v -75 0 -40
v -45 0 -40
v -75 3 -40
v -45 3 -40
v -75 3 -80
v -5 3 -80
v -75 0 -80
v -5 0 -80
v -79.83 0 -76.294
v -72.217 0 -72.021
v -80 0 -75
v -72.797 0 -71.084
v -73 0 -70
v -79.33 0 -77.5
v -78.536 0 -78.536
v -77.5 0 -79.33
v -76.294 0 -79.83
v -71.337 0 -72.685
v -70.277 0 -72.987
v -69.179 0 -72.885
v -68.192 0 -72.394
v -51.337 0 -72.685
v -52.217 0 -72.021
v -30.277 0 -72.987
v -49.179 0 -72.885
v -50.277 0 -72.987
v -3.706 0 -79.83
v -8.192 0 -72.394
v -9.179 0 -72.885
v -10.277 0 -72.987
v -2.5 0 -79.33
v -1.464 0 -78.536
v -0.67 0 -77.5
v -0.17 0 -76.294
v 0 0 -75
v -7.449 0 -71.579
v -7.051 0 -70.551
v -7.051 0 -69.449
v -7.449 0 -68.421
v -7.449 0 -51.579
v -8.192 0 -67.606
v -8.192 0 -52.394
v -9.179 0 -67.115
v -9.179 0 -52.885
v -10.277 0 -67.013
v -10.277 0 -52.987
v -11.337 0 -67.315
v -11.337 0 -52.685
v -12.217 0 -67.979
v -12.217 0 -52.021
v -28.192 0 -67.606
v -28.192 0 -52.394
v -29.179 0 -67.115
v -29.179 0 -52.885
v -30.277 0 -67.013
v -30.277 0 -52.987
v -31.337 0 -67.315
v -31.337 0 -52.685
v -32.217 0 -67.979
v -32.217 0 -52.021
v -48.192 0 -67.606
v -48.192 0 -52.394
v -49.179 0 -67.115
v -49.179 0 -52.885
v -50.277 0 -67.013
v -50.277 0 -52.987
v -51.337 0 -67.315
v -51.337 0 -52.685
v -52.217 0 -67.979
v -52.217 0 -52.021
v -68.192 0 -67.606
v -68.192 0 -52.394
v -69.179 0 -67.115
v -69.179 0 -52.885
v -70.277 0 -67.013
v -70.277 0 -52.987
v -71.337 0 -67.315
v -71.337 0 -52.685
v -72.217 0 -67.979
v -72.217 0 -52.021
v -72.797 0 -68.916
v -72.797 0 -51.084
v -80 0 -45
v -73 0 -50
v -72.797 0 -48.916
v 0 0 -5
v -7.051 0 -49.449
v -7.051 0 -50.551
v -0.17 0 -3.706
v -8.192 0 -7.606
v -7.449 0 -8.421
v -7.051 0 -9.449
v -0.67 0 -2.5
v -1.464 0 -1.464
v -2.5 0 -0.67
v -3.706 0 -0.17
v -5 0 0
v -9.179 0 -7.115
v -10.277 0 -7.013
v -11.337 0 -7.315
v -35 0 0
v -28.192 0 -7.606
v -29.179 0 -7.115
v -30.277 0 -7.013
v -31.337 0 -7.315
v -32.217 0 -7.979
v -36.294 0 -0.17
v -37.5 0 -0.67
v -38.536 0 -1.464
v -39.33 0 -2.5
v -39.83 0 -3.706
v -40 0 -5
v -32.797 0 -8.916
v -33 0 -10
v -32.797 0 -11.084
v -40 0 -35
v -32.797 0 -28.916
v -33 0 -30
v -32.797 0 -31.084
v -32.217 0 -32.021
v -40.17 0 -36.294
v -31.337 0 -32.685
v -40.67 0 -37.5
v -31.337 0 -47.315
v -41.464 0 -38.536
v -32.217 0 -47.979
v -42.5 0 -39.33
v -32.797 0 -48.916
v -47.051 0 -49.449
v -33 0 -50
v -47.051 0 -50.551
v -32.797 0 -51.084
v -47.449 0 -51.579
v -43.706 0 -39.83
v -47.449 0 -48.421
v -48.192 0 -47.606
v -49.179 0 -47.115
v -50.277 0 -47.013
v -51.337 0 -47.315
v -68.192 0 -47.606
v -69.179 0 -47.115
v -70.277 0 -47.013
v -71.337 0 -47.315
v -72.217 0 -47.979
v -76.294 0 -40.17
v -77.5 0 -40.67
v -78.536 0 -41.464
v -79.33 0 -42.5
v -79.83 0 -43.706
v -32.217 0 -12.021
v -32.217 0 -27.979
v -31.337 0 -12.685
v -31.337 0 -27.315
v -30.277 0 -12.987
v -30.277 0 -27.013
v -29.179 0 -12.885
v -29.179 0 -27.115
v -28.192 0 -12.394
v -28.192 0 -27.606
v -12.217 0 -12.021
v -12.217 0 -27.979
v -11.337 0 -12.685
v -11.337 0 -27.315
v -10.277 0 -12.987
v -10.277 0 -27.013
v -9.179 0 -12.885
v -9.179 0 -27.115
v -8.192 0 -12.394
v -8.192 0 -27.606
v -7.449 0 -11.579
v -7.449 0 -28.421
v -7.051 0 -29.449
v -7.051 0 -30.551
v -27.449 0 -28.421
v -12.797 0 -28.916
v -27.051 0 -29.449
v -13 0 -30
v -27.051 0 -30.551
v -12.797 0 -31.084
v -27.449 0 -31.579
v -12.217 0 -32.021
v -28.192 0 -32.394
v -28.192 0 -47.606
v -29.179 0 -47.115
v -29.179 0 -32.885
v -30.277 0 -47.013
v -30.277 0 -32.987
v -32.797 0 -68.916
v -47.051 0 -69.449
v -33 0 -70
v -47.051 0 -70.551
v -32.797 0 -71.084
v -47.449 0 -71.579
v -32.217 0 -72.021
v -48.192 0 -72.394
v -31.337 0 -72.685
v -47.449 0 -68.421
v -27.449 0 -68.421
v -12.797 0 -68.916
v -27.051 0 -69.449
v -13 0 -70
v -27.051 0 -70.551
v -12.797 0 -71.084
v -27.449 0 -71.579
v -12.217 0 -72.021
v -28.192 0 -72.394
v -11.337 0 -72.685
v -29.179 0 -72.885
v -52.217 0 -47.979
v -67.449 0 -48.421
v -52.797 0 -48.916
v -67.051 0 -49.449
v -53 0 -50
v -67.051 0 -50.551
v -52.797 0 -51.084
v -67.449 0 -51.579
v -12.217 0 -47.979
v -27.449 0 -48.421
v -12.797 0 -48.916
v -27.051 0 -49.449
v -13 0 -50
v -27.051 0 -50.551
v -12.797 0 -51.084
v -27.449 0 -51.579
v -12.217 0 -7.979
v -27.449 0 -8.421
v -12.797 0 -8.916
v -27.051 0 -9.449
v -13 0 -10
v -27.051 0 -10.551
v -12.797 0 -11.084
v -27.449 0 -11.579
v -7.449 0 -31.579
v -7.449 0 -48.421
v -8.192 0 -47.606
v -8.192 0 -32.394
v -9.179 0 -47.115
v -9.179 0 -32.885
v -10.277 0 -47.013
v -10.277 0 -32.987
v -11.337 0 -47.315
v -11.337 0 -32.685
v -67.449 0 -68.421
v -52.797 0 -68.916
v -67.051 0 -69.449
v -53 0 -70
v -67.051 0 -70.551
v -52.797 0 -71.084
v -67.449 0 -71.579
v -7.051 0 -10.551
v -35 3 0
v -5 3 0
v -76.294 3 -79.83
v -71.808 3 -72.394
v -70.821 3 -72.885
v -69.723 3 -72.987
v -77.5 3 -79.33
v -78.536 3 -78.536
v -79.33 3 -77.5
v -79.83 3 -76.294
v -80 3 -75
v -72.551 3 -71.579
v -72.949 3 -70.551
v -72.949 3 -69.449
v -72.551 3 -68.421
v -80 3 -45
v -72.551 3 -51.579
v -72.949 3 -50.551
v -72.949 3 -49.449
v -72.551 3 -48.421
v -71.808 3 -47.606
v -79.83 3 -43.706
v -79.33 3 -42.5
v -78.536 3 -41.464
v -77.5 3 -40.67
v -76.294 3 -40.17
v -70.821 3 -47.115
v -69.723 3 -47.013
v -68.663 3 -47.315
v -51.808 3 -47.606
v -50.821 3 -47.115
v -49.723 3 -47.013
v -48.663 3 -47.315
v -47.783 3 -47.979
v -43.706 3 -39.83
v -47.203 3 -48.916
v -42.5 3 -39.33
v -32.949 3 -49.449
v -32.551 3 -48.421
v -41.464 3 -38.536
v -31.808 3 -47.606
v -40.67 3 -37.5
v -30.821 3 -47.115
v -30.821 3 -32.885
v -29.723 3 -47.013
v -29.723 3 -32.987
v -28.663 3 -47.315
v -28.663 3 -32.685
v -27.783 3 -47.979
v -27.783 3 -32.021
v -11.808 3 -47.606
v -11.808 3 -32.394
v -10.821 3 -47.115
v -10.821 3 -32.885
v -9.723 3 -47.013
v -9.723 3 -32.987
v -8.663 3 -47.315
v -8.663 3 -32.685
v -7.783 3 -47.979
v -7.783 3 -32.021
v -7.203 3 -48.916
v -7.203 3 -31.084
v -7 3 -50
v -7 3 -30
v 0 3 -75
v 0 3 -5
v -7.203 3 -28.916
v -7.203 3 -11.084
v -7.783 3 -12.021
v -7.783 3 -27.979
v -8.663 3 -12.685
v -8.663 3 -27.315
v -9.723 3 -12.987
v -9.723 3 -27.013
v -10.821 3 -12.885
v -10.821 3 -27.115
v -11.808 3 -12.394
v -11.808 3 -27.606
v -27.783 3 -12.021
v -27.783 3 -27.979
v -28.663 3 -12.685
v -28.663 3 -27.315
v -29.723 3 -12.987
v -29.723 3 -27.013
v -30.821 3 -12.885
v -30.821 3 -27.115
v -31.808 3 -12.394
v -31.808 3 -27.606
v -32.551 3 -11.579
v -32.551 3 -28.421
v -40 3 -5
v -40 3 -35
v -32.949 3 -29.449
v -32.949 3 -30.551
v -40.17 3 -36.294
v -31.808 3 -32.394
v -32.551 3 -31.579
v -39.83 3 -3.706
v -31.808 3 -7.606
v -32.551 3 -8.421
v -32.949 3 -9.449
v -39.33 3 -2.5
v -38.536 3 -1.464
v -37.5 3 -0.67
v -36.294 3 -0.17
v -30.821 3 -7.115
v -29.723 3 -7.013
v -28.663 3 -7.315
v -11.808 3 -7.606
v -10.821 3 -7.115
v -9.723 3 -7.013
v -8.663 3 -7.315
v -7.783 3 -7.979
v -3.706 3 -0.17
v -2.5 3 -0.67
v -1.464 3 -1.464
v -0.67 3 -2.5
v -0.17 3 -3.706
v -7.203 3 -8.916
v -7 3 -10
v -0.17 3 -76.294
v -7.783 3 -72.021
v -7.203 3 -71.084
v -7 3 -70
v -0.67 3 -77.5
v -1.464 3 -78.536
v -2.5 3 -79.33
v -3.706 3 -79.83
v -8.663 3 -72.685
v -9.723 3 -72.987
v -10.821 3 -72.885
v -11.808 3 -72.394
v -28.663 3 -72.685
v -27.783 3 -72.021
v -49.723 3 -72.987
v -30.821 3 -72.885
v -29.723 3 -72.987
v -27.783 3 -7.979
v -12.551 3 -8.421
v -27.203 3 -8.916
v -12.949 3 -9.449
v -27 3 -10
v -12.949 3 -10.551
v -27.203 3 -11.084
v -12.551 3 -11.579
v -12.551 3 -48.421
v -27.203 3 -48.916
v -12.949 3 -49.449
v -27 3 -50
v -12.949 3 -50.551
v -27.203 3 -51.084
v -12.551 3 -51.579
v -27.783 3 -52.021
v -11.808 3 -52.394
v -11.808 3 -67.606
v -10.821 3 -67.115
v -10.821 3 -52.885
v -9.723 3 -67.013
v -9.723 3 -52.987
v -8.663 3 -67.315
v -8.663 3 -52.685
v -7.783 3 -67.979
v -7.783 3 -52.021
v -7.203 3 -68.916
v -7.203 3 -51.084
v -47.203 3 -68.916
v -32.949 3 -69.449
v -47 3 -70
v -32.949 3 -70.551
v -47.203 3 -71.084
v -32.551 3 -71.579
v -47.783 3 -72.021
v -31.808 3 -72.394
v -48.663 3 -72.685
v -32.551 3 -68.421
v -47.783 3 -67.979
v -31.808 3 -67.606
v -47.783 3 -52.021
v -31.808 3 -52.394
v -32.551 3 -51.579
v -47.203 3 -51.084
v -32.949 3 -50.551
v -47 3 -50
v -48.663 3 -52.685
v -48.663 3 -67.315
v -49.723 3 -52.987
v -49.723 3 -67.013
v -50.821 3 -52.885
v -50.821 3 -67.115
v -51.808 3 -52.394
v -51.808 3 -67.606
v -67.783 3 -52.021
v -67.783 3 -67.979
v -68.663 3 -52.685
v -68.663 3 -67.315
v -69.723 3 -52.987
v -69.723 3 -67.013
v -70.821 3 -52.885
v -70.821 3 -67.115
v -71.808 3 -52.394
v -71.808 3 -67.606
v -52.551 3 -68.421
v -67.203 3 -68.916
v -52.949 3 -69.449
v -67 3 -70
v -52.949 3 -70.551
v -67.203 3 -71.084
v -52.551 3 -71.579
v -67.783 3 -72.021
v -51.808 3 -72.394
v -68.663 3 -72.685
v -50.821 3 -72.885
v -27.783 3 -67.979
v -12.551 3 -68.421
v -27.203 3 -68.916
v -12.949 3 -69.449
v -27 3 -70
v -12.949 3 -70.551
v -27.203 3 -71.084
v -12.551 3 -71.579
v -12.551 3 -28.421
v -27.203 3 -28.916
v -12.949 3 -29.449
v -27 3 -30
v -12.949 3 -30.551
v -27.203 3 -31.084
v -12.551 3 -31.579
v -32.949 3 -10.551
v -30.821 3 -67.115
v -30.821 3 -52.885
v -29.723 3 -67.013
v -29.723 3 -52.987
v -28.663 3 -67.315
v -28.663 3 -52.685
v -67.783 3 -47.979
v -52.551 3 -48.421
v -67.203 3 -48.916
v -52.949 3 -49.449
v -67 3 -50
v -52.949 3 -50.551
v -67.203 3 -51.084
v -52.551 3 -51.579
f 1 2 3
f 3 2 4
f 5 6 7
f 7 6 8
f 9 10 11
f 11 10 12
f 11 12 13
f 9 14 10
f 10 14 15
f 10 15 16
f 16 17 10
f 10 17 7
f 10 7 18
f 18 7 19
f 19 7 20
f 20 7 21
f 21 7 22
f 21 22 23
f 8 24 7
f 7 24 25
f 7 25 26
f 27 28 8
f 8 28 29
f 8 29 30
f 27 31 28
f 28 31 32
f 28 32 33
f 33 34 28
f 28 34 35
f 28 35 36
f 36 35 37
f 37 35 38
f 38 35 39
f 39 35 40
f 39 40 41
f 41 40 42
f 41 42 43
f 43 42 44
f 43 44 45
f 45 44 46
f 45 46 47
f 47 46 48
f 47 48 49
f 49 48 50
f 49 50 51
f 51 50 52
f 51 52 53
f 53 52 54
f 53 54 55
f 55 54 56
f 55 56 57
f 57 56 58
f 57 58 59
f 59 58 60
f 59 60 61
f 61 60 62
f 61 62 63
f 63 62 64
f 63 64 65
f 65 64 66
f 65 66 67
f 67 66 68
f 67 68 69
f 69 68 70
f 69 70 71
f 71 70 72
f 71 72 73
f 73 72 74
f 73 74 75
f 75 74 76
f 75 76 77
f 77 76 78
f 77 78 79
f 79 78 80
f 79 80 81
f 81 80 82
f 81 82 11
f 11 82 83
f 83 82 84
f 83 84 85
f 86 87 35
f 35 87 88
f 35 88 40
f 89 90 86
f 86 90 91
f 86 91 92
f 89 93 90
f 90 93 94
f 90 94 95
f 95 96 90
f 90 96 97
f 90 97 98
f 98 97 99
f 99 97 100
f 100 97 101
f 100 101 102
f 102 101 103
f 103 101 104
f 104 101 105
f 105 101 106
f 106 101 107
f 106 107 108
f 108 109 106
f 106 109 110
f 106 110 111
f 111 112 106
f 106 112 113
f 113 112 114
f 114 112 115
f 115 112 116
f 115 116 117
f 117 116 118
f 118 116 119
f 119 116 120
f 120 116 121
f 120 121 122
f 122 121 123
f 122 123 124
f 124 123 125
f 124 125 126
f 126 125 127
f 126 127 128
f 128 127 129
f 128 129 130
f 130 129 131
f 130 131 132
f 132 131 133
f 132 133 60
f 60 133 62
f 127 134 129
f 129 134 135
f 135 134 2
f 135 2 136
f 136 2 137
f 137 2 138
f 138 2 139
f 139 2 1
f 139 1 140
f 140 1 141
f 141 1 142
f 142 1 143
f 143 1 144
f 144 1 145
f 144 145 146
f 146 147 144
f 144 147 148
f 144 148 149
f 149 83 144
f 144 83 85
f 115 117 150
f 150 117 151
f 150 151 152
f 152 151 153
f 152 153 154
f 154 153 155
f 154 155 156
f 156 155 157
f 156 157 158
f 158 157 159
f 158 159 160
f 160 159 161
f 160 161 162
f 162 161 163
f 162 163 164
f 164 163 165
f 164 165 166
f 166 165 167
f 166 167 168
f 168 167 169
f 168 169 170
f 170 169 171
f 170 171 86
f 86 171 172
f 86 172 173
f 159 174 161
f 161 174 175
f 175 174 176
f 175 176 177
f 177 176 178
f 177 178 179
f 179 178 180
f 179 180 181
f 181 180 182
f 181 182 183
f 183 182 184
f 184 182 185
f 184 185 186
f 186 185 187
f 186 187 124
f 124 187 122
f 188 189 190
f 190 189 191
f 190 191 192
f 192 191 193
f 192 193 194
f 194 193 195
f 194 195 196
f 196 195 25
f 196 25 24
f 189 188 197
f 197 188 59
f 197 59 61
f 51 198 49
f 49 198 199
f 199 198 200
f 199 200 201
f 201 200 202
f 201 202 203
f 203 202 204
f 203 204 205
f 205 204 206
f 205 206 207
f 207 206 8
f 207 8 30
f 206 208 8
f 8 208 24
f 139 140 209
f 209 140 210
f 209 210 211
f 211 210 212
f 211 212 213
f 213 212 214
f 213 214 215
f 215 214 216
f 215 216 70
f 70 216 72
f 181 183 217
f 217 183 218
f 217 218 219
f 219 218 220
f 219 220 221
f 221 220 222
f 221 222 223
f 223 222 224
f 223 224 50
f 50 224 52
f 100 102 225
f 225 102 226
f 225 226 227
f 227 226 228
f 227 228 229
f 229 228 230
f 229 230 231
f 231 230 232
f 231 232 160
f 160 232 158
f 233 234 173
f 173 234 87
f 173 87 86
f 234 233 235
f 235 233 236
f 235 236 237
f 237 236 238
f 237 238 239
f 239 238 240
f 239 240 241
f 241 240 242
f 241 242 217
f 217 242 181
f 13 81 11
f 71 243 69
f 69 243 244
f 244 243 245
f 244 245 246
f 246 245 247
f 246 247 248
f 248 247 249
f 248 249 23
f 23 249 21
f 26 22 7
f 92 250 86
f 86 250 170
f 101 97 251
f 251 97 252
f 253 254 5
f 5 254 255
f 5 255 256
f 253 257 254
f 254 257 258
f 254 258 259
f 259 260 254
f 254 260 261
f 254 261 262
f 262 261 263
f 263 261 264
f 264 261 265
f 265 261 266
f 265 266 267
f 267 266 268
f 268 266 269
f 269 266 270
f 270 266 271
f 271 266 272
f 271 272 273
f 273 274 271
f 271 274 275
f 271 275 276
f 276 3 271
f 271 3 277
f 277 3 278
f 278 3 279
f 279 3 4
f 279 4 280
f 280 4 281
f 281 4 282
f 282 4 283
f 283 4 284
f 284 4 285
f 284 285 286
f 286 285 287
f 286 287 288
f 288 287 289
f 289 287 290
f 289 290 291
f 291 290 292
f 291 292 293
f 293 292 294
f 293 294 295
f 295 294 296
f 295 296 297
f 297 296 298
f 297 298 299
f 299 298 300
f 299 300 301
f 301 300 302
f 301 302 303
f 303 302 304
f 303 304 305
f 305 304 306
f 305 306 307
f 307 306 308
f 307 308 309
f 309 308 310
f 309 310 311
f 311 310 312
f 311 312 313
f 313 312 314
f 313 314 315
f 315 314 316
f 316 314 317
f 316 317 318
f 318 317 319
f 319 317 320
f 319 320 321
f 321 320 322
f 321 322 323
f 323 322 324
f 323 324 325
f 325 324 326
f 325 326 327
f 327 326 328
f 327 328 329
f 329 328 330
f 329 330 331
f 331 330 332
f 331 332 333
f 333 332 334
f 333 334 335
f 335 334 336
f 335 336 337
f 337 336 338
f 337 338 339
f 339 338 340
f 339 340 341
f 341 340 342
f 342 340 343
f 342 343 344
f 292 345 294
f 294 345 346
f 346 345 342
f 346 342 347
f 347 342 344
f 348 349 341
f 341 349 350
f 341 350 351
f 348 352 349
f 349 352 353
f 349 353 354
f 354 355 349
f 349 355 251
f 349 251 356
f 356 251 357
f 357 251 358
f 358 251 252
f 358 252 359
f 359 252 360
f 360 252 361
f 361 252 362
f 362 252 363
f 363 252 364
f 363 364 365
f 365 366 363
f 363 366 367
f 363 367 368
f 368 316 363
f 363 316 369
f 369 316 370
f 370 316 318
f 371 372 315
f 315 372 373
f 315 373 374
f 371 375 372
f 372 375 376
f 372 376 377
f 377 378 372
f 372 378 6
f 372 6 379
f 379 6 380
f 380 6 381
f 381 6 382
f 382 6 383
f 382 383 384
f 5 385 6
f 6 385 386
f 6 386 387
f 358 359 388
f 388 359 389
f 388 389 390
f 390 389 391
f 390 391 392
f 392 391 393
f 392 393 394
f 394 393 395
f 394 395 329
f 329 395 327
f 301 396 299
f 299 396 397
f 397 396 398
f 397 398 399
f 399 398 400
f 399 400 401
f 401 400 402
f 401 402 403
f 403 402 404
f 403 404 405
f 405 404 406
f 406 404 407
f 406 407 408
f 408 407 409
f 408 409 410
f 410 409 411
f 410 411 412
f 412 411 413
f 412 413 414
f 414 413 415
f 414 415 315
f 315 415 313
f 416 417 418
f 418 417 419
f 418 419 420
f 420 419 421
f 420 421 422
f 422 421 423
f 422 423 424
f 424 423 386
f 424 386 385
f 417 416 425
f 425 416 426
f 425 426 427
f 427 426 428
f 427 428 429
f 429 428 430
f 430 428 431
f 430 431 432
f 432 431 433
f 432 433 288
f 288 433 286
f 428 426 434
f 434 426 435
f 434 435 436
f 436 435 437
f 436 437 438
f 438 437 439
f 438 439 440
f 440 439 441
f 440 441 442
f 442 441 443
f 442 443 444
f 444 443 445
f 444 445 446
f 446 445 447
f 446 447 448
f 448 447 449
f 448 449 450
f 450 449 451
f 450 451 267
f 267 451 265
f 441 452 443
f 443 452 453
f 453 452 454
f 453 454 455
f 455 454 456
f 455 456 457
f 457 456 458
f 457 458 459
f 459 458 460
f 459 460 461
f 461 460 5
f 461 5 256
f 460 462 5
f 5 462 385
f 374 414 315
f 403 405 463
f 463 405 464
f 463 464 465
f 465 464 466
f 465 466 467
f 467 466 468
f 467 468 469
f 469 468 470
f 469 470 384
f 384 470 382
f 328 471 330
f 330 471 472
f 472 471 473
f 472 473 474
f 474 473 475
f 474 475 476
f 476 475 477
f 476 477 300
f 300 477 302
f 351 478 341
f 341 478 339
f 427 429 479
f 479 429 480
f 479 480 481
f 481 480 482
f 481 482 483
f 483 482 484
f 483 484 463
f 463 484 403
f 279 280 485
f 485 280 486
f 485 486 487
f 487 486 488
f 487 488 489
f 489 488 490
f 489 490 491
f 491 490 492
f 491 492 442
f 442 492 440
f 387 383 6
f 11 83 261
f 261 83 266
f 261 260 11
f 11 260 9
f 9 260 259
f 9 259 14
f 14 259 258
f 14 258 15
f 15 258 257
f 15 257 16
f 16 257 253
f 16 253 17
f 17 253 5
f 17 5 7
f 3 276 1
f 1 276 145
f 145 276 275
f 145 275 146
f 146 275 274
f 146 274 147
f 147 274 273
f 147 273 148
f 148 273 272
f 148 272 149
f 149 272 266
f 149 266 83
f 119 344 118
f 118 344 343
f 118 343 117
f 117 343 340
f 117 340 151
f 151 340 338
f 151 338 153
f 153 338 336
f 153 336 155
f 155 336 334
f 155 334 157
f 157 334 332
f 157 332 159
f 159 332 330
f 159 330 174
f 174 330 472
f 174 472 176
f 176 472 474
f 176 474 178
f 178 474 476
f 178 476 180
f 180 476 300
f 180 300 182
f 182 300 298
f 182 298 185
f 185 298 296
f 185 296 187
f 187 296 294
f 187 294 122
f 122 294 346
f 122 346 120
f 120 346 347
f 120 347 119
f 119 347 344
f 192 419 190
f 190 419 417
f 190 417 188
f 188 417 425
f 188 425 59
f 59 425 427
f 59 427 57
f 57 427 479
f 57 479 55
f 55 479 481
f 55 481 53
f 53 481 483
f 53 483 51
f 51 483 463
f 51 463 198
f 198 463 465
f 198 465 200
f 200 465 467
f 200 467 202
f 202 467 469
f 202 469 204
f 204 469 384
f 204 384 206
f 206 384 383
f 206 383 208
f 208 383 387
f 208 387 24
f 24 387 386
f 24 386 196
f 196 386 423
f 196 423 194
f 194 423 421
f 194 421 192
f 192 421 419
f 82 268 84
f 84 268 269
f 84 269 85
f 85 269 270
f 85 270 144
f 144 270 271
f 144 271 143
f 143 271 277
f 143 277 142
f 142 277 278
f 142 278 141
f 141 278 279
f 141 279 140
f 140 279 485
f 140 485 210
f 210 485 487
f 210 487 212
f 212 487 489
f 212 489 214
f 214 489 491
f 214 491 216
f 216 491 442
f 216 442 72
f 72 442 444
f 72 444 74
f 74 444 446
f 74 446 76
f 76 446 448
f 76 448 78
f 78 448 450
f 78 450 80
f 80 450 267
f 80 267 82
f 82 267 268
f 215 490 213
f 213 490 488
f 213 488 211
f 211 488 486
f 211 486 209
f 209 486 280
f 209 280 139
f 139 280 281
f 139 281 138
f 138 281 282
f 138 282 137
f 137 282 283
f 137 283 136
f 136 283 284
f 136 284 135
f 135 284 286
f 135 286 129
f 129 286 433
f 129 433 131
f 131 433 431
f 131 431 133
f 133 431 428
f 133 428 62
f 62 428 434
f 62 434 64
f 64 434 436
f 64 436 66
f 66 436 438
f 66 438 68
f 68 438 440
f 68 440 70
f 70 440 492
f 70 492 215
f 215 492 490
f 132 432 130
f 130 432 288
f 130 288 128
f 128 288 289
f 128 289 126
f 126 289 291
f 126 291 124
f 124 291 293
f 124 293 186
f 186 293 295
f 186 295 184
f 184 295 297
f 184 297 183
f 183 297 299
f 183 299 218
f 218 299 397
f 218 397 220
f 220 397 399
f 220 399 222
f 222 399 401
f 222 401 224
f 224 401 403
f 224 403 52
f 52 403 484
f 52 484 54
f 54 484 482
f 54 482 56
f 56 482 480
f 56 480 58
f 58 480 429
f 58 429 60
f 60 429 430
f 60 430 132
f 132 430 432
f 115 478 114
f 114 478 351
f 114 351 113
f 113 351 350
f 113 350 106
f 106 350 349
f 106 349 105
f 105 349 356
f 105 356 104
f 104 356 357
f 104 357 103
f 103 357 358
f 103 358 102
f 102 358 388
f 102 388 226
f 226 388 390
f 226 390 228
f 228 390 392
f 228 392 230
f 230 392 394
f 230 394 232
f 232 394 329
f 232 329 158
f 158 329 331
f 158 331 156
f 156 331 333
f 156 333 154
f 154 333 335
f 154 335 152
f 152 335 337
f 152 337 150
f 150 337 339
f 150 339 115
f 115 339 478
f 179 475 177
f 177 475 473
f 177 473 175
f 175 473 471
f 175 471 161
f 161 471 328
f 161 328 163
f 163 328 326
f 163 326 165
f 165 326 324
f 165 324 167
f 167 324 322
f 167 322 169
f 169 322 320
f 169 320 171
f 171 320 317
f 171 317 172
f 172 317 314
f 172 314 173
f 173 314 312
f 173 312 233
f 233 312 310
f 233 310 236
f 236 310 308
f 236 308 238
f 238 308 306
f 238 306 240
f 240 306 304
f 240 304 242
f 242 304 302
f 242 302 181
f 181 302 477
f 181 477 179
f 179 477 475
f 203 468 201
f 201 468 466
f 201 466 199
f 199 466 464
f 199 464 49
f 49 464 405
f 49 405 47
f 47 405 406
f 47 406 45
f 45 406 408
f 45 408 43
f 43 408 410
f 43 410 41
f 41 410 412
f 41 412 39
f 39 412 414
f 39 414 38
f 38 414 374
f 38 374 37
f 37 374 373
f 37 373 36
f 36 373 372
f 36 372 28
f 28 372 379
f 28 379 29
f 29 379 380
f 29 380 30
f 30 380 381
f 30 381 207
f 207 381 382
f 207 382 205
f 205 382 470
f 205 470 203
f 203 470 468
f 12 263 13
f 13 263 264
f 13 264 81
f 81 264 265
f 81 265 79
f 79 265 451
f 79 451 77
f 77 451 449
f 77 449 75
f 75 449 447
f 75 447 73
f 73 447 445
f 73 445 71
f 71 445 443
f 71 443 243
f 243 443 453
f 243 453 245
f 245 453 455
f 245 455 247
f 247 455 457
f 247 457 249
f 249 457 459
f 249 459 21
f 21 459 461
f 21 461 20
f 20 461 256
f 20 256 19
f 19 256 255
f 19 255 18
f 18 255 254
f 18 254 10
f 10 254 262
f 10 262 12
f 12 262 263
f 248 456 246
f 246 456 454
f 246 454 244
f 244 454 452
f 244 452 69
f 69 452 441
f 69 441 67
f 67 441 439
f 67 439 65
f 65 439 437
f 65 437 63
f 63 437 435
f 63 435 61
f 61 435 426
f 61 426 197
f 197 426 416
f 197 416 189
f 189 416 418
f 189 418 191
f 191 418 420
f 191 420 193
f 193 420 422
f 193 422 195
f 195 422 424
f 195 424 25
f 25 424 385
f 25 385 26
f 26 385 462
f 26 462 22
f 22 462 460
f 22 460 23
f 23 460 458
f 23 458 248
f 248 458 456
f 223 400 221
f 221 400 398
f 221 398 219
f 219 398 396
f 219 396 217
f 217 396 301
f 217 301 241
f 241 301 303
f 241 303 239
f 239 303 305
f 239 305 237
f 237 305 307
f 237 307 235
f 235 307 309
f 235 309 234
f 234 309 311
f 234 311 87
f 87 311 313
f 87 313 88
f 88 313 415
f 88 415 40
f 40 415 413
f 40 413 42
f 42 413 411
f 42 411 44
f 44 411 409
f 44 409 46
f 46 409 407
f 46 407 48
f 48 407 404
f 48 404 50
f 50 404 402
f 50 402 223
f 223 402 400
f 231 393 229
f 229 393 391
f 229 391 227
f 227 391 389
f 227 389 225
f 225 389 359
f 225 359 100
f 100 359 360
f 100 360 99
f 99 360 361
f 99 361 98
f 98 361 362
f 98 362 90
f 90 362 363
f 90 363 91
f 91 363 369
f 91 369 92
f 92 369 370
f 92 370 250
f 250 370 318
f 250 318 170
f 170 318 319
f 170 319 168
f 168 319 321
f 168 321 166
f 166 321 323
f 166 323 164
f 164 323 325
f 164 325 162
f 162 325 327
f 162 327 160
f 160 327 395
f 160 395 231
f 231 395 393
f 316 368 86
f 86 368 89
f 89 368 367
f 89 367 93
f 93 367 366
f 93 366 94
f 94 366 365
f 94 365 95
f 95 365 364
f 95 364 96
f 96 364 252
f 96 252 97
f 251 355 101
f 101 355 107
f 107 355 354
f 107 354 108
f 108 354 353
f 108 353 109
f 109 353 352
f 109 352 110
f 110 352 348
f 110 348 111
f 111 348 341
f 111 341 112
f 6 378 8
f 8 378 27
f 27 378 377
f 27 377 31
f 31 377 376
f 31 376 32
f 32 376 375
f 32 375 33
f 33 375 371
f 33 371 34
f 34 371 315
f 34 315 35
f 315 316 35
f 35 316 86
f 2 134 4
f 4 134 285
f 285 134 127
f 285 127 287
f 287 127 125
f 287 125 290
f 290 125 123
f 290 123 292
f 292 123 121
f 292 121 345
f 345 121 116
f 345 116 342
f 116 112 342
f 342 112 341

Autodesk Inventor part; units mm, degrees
ref_plane "YZ Plane" through (0, 0, 0) normal (1, 0, 0) x (0, 1, 0)
ref_plane "XZ Plane" through (0, 0, 0) normal (0, 1, 0) x (-1, 0, 0)
ref_plane "XY Plane" through (0, 0, 0) normal (0, 0, 1) x (1, 0, 0)
sketch "Sketch1" plane through (0, 0, 0) normal (0, 1, 0) x (-1, 0, 0)
  line L0 (0, 0) -> (40, 0)
  line L1 (40, 0) -> (40, -80)
  line L2 (40, -80) -> (0, -80)
  line L3 (0, -80) -> (0, 0)
  line L4 (0, -80) -> (80, -80)
  line L5 (80, -80) -> (80, -40)
  line L6 (80, -40) -> (0, -40)
  line L7 (0, -40) -> (0, -80)
  point P0 (40, -40)
  dimension "d0" = 40
  dimension "d1" = 80
  dimension "d2" = 80
  dimension "d3" = 40
extrude "Extrusion1" add sketch "Sketch1" along normal blind 3
sketch "Sketch2" plane through (0, 3, 0) normal (0, 1, 0) x (1, 0, 0)
  line L0 (0, 0) -> (-10, 0)
  line L1 (-40, 0) -> (0, 0) projected
  line L2 (-10, 0) -> (-10, 10)
  circle A0 centre (-10, 10) radius 3
  line L3 (0, 0) -> (0, 80) projected
  line L4 (0, 0) -> (0, 80)
  circle A1 centre (-10, 30) radius 3
  circle A2 centre (-10, 50) radius 3
  circle A3 centre (-10, 70) radius 3
  circle A4 centre (-30, 10) radius 3
  circle A5 centre (-30, 30) radius 3
  circle A6 centre (-30, 50) radius 3
  circle A7 centre (-30, 70) radius 3
  line L5 (-10, 70) -> (0, 70)
  line L6 (-10, 70) -> (-10, 80)
  line L7 (0, 80) -> (-80, 80) projected
  circle A8 centre (-10, 70) radius 3
  circle A9 centre (-30, 70) radius 3
  circle A10 centre (-50, 70) radius 3
  circle A11 centre (-70, 70) radius 3
  circle A12 centre (-10, 50) radius 3
  circle A13 centre (-30, 50) radius 3
  circle A14 centre (-50, 50) radius 3
  circle A15 centre (-70, 50) radius 3
  dimension "d6" = 10
  dimension "d7" = 10
  dimension "d8" = 6
  dimension "d11" = 20
  dimension "d14" = 20
  dimension "d19" = 20
  dimension "d22" = 20
extrude "Extrusion2" cut sketch "Sketch2" against normal through all contours A0 | L5 L6 A3 | A3 L6 L5 | A1 | A2 | A4 | A5 | A6 | A7 | A10 | A11 | A14 | A15
fillet "Fillet1" radius 5 6 edges at (0, 1.5, 0) (-40, 1.5, 0) (0, 1.5, -80) (-40, 1.5, -40) (-80, 1.5, -40) (-80, 1.5, -80)
properties part number "RightAngle_4040"
